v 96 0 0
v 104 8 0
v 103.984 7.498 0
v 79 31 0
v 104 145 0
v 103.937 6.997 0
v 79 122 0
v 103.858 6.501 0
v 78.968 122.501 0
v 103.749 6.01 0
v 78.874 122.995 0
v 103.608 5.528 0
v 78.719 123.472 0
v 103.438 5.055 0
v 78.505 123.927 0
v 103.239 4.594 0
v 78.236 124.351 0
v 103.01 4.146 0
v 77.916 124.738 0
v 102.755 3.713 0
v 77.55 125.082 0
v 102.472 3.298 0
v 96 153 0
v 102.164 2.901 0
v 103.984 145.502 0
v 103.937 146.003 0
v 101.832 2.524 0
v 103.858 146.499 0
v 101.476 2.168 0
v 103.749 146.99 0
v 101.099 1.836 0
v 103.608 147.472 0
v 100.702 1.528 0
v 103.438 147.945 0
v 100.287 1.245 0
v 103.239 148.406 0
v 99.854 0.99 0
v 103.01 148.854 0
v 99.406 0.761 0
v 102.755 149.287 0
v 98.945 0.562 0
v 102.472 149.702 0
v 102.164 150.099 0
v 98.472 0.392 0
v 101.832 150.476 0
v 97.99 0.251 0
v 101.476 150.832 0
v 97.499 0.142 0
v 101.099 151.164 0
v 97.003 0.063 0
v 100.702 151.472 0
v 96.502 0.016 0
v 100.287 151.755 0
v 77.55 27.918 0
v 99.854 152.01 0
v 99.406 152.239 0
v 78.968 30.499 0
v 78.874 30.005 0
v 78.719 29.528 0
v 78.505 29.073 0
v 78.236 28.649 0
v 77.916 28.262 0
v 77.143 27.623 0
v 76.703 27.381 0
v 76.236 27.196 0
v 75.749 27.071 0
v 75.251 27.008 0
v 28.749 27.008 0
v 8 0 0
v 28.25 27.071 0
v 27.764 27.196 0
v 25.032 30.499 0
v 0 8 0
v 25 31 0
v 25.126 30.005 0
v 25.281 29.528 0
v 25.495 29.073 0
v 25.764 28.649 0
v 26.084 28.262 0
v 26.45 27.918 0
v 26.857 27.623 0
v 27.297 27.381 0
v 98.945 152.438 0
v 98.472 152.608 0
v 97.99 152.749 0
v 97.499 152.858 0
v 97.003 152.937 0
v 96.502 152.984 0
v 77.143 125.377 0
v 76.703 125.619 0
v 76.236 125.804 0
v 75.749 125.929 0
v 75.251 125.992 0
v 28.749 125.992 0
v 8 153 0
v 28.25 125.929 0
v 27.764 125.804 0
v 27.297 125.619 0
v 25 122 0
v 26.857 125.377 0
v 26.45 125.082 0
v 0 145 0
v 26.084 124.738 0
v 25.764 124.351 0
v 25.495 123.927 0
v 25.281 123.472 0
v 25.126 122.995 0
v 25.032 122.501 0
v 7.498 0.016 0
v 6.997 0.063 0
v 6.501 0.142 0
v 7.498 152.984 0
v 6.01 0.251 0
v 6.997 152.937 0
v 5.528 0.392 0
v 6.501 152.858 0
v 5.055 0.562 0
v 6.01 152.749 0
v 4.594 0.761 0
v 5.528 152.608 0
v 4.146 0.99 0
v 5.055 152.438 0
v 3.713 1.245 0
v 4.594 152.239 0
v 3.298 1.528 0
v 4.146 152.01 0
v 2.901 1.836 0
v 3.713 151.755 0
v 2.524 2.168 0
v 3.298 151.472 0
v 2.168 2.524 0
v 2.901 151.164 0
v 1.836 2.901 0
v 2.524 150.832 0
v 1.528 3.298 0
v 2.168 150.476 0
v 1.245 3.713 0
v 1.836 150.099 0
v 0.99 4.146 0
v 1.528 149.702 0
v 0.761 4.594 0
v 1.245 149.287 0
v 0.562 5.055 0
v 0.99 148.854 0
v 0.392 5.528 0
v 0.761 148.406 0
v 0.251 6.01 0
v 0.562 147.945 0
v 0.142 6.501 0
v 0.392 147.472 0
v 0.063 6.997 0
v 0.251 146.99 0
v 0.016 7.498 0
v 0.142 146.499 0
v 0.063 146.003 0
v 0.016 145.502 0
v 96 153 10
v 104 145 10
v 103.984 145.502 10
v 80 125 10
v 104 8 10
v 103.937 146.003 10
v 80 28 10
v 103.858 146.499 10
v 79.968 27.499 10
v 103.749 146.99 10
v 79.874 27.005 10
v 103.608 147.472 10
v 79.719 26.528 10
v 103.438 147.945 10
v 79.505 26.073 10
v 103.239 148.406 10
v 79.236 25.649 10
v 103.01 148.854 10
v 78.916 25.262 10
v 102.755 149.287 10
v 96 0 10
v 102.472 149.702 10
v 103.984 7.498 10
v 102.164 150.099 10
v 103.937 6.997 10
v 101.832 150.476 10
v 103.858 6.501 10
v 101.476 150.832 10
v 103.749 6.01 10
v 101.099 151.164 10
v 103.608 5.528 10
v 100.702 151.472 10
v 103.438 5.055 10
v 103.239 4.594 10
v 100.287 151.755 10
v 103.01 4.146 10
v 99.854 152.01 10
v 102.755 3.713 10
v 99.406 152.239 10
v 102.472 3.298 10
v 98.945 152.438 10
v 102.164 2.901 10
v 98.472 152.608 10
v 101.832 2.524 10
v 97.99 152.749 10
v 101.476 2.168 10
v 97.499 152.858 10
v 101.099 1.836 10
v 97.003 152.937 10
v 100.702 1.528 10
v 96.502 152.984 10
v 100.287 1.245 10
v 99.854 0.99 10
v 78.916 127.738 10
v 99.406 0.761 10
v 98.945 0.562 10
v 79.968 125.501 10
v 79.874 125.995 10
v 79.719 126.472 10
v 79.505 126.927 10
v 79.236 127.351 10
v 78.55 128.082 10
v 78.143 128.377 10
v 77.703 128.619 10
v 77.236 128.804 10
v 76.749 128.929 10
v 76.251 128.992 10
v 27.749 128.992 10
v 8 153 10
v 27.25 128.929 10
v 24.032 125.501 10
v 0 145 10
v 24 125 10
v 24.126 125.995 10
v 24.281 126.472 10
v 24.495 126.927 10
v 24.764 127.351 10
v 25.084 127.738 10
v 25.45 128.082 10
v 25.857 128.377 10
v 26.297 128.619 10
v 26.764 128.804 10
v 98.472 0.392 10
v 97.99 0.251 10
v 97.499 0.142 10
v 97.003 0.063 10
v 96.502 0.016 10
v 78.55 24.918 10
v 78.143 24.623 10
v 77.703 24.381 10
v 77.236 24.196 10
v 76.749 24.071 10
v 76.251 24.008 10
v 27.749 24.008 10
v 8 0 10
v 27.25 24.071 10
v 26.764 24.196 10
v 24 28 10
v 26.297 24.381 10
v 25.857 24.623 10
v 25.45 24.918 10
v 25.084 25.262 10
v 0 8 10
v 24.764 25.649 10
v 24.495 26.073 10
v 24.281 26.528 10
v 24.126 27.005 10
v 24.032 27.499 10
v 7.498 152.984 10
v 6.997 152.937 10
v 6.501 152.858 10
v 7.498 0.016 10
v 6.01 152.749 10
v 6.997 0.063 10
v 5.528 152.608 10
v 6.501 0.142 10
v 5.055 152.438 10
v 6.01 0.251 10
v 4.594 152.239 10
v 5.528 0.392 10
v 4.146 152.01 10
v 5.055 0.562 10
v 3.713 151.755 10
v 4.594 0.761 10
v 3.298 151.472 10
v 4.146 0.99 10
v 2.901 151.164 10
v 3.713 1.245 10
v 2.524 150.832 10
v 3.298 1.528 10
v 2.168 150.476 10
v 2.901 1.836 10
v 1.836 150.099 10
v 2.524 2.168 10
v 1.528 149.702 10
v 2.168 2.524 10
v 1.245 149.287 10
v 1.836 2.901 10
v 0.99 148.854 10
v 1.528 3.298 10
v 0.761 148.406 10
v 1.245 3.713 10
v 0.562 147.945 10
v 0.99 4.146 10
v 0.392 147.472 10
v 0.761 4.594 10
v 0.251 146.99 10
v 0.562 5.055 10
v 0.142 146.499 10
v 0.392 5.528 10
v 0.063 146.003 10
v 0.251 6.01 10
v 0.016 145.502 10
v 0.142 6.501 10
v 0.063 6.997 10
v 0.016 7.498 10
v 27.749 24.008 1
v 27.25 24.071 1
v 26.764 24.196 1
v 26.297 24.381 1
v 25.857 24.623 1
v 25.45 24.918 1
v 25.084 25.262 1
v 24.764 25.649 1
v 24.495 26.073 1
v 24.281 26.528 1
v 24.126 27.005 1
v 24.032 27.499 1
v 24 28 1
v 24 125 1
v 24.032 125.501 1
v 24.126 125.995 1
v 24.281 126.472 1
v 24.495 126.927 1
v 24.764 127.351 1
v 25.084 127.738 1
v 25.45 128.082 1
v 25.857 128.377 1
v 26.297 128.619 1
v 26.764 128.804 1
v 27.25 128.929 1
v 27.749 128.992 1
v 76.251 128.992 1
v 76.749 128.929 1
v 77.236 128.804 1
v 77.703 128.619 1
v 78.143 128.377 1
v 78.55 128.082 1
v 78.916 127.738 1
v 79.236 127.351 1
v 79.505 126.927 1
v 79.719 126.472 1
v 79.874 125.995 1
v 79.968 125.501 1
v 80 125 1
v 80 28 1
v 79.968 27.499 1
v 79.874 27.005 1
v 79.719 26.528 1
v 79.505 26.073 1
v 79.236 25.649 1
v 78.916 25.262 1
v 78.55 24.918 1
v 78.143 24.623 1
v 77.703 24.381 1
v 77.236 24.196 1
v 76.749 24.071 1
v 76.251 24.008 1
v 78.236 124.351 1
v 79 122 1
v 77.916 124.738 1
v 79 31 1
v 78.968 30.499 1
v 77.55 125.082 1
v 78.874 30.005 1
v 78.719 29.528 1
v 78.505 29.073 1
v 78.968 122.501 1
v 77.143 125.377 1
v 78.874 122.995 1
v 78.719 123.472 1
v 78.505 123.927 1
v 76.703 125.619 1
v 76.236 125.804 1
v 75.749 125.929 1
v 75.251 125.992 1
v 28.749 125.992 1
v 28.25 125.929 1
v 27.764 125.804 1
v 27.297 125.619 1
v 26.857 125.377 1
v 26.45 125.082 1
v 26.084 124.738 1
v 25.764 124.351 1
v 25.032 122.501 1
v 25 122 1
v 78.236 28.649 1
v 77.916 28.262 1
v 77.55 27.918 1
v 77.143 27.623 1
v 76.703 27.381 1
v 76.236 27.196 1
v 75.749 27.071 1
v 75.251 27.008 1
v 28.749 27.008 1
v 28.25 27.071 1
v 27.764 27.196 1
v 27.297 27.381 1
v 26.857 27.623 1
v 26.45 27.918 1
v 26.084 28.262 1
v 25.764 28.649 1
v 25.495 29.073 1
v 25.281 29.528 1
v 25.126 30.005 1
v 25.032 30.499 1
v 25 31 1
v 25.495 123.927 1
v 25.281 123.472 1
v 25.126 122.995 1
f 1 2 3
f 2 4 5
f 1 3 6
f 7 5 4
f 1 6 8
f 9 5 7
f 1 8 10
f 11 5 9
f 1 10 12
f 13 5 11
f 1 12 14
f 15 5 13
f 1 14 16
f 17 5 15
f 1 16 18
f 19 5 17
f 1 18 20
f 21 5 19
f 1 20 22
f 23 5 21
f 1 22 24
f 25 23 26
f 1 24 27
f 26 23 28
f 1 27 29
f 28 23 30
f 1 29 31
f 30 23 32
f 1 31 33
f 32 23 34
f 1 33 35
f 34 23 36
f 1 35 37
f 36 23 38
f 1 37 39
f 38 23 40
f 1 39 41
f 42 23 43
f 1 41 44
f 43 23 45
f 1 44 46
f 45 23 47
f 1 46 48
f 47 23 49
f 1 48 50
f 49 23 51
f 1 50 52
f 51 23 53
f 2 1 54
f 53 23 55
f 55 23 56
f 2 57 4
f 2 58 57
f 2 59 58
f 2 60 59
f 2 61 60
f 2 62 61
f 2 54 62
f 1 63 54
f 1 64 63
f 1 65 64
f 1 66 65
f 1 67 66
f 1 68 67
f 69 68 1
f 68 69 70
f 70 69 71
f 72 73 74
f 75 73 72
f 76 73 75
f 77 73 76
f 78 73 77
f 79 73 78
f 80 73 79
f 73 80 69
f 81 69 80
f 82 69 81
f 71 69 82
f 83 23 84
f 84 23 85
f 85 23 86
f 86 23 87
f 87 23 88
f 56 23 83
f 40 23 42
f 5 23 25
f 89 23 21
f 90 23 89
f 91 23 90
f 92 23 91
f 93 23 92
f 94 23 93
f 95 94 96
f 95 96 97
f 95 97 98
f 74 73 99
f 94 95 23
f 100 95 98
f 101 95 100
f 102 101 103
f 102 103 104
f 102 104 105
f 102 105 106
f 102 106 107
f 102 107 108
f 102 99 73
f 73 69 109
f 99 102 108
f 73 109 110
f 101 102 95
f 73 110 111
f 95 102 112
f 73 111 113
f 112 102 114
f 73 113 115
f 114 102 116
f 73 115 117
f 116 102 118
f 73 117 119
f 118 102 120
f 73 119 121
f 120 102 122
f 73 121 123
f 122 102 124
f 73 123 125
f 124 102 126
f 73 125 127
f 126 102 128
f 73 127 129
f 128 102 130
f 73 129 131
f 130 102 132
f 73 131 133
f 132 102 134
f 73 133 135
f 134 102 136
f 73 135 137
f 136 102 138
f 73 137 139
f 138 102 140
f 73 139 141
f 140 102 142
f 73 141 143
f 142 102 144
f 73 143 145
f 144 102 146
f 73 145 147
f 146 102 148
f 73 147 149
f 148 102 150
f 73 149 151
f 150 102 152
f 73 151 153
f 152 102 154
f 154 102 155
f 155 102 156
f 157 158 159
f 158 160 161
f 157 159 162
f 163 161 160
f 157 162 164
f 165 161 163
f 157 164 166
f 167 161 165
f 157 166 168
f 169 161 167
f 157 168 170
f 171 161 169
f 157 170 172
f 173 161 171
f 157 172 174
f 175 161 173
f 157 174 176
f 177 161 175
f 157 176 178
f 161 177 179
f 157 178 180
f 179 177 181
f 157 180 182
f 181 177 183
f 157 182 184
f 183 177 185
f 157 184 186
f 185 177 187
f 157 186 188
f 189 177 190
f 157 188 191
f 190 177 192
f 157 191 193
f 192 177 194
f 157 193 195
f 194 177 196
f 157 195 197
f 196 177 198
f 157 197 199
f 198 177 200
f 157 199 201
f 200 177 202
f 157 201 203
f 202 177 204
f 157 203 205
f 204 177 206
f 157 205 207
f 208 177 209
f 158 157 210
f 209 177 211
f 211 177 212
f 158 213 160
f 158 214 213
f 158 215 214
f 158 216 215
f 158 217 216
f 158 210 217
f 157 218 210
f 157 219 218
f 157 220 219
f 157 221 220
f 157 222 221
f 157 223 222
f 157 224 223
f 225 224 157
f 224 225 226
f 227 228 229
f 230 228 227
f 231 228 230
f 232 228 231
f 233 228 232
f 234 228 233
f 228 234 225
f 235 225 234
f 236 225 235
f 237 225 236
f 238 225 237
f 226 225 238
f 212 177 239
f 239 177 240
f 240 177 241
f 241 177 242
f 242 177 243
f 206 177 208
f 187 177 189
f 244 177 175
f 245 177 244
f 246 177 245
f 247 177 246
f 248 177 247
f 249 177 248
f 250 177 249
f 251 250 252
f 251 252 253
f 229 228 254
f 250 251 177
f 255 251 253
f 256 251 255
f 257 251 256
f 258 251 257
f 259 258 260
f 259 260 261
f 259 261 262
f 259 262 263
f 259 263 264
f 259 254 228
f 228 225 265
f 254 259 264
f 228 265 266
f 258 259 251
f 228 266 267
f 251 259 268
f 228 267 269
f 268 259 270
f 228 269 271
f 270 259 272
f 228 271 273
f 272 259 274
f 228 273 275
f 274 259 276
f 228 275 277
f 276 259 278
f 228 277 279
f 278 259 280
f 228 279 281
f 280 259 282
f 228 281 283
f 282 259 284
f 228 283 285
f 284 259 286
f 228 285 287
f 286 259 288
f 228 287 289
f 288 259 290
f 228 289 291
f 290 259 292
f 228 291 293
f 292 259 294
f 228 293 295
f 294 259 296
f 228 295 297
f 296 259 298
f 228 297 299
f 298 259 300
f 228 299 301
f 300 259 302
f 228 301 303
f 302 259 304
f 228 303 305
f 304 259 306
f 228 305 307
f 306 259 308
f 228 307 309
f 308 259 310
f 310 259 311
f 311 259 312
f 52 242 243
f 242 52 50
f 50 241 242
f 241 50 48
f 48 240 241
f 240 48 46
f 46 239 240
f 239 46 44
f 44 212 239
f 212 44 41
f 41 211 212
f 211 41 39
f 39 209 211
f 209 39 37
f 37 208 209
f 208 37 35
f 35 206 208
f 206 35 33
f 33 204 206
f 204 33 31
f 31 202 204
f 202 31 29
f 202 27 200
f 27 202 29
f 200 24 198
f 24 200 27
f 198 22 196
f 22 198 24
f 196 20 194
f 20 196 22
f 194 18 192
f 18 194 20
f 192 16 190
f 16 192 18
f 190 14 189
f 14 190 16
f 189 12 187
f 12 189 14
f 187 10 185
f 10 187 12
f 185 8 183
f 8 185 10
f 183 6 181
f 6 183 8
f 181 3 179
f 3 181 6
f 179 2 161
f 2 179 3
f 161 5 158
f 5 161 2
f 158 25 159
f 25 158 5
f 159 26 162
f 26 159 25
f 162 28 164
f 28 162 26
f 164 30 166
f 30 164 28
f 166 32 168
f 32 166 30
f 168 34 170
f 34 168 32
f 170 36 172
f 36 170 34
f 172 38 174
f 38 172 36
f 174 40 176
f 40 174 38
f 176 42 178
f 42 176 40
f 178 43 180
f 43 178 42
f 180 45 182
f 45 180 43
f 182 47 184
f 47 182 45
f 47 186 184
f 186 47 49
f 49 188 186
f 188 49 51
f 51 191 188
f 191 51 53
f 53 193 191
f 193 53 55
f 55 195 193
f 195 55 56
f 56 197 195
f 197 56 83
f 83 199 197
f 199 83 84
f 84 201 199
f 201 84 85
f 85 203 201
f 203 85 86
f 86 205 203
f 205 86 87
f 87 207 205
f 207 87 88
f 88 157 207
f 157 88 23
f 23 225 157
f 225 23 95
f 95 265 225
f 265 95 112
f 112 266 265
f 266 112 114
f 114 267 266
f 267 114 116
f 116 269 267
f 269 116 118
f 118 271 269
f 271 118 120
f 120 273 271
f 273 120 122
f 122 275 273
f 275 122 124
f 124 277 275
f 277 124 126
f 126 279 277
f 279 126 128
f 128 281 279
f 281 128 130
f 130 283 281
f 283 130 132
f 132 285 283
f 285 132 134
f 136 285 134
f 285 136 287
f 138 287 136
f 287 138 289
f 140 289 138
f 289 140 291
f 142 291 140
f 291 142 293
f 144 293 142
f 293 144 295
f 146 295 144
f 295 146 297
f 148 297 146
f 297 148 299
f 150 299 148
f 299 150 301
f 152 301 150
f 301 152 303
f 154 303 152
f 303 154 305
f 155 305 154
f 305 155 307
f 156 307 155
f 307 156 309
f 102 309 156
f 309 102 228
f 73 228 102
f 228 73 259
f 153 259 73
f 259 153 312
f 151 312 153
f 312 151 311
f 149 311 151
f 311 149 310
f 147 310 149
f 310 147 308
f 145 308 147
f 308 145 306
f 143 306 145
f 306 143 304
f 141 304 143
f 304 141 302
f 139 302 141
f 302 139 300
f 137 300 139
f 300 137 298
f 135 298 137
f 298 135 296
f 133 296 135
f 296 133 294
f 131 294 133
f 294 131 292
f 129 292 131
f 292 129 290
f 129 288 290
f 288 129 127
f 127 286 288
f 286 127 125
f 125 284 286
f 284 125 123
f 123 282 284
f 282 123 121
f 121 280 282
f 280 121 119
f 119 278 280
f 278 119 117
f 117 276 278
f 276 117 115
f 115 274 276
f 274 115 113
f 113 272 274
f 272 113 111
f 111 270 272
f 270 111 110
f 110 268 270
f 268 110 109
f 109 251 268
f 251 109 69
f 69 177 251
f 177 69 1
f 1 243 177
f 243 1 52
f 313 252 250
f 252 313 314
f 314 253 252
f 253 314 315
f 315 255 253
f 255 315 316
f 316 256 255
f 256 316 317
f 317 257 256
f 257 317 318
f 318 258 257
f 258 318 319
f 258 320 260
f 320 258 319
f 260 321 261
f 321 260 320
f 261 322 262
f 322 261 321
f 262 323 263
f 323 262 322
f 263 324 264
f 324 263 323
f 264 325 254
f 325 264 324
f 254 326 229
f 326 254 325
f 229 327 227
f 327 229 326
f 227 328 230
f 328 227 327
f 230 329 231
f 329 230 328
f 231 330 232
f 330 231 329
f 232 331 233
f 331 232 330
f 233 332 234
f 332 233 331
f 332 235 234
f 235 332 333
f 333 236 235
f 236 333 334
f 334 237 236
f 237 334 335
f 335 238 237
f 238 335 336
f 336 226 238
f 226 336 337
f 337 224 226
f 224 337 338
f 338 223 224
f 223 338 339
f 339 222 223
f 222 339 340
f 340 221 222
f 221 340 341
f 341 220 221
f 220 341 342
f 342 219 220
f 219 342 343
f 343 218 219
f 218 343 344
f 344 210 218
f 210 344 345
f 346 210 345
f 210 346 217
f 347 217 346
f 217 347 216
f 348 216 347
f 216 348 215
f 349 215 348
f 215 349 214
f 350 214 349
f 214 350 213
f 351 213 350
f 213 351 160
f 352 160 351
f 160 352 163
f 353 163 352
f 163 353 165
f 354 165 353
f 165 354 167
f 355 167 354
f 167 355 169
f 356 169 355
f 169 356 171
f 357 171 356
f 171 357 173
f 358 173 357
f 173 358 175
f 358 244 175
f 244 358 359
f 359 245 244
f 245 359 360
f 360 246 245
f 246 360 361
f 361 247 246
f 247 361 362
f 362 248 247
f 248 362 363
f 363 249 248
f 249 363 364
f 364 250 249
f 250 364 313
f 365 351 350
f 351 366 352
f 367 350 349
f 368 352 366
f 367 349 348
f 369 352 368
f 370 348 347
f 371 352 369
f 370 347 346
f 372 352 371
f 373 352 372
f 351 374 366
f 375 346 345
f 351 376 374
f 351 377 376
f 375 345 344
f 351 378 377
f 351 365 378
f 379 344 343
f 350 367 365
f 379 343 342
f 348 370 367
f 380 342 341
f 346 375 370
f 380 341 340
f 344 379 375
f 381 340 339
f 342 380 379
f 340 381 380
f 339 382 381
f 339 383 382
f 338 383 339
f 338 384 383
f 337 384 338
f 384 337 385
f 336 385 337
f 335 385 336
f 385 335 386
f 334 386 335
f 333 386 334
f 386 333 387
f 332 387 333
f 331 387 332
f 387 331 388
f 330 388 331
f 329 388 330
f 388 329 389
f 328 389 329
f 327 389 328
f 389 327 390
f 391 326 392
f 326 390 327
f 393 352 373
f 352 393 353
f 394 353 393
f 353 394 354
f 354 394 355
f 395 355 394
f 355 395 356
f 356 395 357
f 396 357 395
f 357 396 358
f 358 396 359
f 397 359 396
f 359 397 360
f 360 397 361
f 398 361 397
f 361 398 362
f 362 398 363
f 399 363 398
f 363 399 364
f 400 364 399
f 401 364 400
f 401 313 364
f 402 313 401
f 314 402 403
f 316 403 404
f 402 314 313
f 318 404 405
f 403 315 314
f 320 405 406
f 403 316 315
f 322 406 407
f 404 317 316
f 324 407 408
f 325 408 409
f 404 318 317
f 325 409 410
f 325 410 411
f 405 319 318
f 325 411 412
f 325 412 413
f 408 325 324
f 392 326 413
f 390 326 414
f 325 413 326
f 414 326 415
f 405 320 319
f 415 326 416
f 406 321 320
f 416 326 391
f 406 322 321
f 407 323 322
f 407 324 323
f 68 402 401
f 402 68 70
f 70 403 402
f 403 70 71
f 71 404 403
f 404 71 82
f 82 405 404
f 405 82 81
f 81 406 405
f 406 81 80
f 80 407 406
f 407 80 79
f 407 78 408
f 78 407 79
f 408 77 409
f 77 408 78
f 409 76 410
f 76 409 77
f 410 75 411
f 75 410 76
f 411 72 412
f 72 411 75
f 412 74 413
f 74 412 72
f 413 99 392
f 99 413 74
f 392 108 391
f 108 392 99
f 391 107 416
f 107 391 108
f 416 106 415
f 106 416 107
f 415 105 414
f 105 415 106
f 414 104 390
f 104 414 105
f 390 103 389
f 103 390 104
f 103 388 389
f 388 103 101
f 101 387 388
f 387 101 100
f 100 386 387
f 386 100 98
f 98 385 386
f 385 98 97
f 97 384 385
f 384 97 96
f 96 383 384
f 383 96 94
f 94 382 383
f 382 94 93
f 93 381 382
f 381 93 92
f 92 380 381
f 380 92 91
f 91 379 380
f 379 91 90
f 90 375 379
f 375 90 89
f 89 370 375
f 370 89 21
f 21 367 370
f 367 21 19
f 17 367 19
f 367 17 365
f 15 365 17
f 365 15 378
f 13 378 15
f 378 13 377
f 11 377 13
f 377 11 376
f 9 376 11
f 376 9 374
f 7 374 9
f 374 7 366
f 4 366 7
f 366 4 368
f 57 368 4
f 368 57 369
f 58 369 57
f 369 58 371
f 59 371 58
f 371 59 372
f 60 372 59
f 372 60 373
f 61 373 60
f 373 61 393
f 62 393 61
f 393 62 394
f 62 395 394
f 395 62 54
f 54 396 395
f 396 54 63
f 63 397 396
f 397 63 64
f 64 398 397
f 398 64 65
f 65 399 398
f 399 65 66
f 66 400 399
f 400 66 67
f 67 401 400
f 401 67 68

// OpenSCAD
// file: ../common/math.scad
//
// just some useful general math utilities
//

//
// min() and max() give you the lower or higher of their arguments,
// respectively.  They behave asymmetrically at 0, so as to establish a
// stable sort order, merely reversed, no matter which order the inputs come
// in.
//
// contributed by @vathpela
//
function min(x, y) = y > x ? x : y;
function max(x, y) = x >= y ? x : y;

//
// logx(x, b) is log base x of b aka logX(b)
//
// *sigh*, openscad's math primitives are so defective
//
// contributed by @vathpela
//
function logx(x, b) = log(x) / log(b);
// file: ../common/copies.scad
/*
  author: Christopher O'Brien  <obriencj@gmail.com>
  license: GPL v3
*/
use <../common/math.scad>

module copy_mirror(plane=[0, 0, 1]) {
     children();
     mirror(plane) children();
}


module copy_translate(x=0, y=0, z=0, copies=1) {
     if(copies) {
	  for(i = [0:copies]) {
	       translate([x * i, y * i, z * i]) {
		    children();
	       };
	  };
     } else {
	  children();
     };
}


module copy_rotate(x=0, y=0, z=0, copies=1) {
     if(copies) {
	  for(i = [0:copies]) {
	       rotate([x * i, y * i, z * i]) {
		    children();
	       };
	  };
     } else {
	  children();
     };
}


module copy_grid(offsets=[0, 0, 0], grid=[1, 1, 1]) {
     copy_translate(x=offsets.x, copies=grid.x-1) {
	  copy_translate(y=offsets.y, copies=grid.y-1) {
	       copy_translate(z=offsets.z, copies=grid.z-1) {
		    children();
	       };
	  };
     };
}


module duplicate(move_v=[0,0,0], rotate_v=[0,0,0]) {
     children();
     translate(move_v) {
	  rotate(rotate_v) {
	       children();
	  };
     };
}


//
// isomers() builds stereoisometric copies, horrifyingly laid out on the xy
// plane.
//
// you can specify how many copies with n=<NUMBER> or ns[xN, yN, zN],
// n=1 is the same as ns=[1, 0, 0]
// If the single n is nonzero, it is used, else the vector is.
//
// This is astonishingly close to actual n-dimensional chess.  You probably
// only want to choose n>1 on 2 or fewer planes at the same time. Inputs:
//
// contributed by @vathpela
//
module isomers(n=0, ns=[1, 0, 0], size=[1, 1, 1], debug=false)
{
    nm = [n ? n : ns[0], n ? 1 : ns[1], n ? 1 : ns[2]];

    xn = max(nm[0], 1);
    yn = max(nm[1], 1);
    zn = max(nm[2], 1);
    if (debug)
        echo("[xn,yn,zn]", [xn,yn,zn]);
    m = logn(xn*yn*zn, 2);

    xs = size[0];
    ys = size[1];
    zs = size[2];
    if (debug)
        echo("[xs,ys,zs]", [xs,ys,zs]);

    module zmirrorshift(origin=[0, 0, 0], x, y)
    {
        if (debug)
            echo("zmirror origin", origin);
        for (z = [0:1:zn-1])
        {
            shift0 = [origin[0] + xs/2 * 1.2 * (z-0.5)*-zn,
                      origin[1],
                      origin[2] + zs];
            shift1 = [origin[0] + xs/2 * 1.2 * (z-3.5)*zn - (xn) * xs * 1.2,
                      origin[1],
                      origin[2]];
            shift2 = [origin[0] + xs/2 * 1.2 * (z-0.5)*-zn,
                      origin[1],
                      origin[2]];

            if (z % 2 == 0 && zn != 1) {
                if (debug)
                    echo("za [z]", [z], "[zs]", [zs], "t([x,y,z])", shift0);
                translate(shift0) mirror([0, 0, 1]) children();
            } else {
                if (debug)
                    echo("zb [z]", [z], "[zs]", [zs], "t([x,y,z])", shift1);
                translate(zn == 1 ? shift2 : shift1) children();
            }
        }
    }

    module ymirrorshift(origin=[0, 0, 0], x)
    {
        if (debug)
            echo("ymirror origin", origin);
        for (y = [0:1:yn-1])
        {
            shift=[origin[0],
                   origin[1] + y * ys * 1.2,
                   origin[2]];
            if (debug)
                echo("ya [x,y,z]", [x,y,0], "[ys,zs]", [ys,zs], "t([x,y,z])", shift);
            if (y % 2 == 0) {
                zmirrorshift(shift, x, y) mirror([0, 1, 0]) children();
            } else {
                zmirrorshift(shift, x, y) children();
            }
        }
    }

    module xmirrorshift(origin=[0, 0, 0])
    {
        if (debug)
            echo("xmirror origin", origin);
        for (x = [0:1:xn-1])
        {
            shift=[origin[0] + x * xs * 1.2,
                   origin[1],
                   origin[2]];
            if (debug)
                echo("xa [x,y,z]", [x,0,0],
                     "[xs,ys,zs]", [xs,ys,zs],
                     "t([x,y,z])", shift);
            if (x % 2 == 0) {
                ymirrorshift(shift, x) mirror([1, 0, 0]) children();
            } else {
                ymirrorshift(shift, x) children();
            }
        }
    }

    xmirrorshift() children();
}

// The end.
// main file
use <../common/shapes.scad>;


module spacer(width=56, height=105, depth=10, oversize=24, corner_r=8) {
     d_oversize = oversize * 2;

     linear_extrude(depth) {
          difference() {
               rounded_plate(width + d_oversize,
                             height + d_oversize,
                             0, turn_r=corner_r, $fn=100);
               translate([oversize, oversize]) {
                    rounded_plate(width, height, 0, turn_r=4);
               };
          };
     };
     linear_extrude(1) {
          difference() {
               rounded_plate(width + d_oversize,
                             height + d_oversize,
                             0, turn_r=corner_r, $fn=100);
               translate([oversize + 1, oversize + 3]) {
                    rounded_plate(width - 2, height - 6, 0, turn_r=4);
               };
          };
     };
}


spacer();


// The end.
